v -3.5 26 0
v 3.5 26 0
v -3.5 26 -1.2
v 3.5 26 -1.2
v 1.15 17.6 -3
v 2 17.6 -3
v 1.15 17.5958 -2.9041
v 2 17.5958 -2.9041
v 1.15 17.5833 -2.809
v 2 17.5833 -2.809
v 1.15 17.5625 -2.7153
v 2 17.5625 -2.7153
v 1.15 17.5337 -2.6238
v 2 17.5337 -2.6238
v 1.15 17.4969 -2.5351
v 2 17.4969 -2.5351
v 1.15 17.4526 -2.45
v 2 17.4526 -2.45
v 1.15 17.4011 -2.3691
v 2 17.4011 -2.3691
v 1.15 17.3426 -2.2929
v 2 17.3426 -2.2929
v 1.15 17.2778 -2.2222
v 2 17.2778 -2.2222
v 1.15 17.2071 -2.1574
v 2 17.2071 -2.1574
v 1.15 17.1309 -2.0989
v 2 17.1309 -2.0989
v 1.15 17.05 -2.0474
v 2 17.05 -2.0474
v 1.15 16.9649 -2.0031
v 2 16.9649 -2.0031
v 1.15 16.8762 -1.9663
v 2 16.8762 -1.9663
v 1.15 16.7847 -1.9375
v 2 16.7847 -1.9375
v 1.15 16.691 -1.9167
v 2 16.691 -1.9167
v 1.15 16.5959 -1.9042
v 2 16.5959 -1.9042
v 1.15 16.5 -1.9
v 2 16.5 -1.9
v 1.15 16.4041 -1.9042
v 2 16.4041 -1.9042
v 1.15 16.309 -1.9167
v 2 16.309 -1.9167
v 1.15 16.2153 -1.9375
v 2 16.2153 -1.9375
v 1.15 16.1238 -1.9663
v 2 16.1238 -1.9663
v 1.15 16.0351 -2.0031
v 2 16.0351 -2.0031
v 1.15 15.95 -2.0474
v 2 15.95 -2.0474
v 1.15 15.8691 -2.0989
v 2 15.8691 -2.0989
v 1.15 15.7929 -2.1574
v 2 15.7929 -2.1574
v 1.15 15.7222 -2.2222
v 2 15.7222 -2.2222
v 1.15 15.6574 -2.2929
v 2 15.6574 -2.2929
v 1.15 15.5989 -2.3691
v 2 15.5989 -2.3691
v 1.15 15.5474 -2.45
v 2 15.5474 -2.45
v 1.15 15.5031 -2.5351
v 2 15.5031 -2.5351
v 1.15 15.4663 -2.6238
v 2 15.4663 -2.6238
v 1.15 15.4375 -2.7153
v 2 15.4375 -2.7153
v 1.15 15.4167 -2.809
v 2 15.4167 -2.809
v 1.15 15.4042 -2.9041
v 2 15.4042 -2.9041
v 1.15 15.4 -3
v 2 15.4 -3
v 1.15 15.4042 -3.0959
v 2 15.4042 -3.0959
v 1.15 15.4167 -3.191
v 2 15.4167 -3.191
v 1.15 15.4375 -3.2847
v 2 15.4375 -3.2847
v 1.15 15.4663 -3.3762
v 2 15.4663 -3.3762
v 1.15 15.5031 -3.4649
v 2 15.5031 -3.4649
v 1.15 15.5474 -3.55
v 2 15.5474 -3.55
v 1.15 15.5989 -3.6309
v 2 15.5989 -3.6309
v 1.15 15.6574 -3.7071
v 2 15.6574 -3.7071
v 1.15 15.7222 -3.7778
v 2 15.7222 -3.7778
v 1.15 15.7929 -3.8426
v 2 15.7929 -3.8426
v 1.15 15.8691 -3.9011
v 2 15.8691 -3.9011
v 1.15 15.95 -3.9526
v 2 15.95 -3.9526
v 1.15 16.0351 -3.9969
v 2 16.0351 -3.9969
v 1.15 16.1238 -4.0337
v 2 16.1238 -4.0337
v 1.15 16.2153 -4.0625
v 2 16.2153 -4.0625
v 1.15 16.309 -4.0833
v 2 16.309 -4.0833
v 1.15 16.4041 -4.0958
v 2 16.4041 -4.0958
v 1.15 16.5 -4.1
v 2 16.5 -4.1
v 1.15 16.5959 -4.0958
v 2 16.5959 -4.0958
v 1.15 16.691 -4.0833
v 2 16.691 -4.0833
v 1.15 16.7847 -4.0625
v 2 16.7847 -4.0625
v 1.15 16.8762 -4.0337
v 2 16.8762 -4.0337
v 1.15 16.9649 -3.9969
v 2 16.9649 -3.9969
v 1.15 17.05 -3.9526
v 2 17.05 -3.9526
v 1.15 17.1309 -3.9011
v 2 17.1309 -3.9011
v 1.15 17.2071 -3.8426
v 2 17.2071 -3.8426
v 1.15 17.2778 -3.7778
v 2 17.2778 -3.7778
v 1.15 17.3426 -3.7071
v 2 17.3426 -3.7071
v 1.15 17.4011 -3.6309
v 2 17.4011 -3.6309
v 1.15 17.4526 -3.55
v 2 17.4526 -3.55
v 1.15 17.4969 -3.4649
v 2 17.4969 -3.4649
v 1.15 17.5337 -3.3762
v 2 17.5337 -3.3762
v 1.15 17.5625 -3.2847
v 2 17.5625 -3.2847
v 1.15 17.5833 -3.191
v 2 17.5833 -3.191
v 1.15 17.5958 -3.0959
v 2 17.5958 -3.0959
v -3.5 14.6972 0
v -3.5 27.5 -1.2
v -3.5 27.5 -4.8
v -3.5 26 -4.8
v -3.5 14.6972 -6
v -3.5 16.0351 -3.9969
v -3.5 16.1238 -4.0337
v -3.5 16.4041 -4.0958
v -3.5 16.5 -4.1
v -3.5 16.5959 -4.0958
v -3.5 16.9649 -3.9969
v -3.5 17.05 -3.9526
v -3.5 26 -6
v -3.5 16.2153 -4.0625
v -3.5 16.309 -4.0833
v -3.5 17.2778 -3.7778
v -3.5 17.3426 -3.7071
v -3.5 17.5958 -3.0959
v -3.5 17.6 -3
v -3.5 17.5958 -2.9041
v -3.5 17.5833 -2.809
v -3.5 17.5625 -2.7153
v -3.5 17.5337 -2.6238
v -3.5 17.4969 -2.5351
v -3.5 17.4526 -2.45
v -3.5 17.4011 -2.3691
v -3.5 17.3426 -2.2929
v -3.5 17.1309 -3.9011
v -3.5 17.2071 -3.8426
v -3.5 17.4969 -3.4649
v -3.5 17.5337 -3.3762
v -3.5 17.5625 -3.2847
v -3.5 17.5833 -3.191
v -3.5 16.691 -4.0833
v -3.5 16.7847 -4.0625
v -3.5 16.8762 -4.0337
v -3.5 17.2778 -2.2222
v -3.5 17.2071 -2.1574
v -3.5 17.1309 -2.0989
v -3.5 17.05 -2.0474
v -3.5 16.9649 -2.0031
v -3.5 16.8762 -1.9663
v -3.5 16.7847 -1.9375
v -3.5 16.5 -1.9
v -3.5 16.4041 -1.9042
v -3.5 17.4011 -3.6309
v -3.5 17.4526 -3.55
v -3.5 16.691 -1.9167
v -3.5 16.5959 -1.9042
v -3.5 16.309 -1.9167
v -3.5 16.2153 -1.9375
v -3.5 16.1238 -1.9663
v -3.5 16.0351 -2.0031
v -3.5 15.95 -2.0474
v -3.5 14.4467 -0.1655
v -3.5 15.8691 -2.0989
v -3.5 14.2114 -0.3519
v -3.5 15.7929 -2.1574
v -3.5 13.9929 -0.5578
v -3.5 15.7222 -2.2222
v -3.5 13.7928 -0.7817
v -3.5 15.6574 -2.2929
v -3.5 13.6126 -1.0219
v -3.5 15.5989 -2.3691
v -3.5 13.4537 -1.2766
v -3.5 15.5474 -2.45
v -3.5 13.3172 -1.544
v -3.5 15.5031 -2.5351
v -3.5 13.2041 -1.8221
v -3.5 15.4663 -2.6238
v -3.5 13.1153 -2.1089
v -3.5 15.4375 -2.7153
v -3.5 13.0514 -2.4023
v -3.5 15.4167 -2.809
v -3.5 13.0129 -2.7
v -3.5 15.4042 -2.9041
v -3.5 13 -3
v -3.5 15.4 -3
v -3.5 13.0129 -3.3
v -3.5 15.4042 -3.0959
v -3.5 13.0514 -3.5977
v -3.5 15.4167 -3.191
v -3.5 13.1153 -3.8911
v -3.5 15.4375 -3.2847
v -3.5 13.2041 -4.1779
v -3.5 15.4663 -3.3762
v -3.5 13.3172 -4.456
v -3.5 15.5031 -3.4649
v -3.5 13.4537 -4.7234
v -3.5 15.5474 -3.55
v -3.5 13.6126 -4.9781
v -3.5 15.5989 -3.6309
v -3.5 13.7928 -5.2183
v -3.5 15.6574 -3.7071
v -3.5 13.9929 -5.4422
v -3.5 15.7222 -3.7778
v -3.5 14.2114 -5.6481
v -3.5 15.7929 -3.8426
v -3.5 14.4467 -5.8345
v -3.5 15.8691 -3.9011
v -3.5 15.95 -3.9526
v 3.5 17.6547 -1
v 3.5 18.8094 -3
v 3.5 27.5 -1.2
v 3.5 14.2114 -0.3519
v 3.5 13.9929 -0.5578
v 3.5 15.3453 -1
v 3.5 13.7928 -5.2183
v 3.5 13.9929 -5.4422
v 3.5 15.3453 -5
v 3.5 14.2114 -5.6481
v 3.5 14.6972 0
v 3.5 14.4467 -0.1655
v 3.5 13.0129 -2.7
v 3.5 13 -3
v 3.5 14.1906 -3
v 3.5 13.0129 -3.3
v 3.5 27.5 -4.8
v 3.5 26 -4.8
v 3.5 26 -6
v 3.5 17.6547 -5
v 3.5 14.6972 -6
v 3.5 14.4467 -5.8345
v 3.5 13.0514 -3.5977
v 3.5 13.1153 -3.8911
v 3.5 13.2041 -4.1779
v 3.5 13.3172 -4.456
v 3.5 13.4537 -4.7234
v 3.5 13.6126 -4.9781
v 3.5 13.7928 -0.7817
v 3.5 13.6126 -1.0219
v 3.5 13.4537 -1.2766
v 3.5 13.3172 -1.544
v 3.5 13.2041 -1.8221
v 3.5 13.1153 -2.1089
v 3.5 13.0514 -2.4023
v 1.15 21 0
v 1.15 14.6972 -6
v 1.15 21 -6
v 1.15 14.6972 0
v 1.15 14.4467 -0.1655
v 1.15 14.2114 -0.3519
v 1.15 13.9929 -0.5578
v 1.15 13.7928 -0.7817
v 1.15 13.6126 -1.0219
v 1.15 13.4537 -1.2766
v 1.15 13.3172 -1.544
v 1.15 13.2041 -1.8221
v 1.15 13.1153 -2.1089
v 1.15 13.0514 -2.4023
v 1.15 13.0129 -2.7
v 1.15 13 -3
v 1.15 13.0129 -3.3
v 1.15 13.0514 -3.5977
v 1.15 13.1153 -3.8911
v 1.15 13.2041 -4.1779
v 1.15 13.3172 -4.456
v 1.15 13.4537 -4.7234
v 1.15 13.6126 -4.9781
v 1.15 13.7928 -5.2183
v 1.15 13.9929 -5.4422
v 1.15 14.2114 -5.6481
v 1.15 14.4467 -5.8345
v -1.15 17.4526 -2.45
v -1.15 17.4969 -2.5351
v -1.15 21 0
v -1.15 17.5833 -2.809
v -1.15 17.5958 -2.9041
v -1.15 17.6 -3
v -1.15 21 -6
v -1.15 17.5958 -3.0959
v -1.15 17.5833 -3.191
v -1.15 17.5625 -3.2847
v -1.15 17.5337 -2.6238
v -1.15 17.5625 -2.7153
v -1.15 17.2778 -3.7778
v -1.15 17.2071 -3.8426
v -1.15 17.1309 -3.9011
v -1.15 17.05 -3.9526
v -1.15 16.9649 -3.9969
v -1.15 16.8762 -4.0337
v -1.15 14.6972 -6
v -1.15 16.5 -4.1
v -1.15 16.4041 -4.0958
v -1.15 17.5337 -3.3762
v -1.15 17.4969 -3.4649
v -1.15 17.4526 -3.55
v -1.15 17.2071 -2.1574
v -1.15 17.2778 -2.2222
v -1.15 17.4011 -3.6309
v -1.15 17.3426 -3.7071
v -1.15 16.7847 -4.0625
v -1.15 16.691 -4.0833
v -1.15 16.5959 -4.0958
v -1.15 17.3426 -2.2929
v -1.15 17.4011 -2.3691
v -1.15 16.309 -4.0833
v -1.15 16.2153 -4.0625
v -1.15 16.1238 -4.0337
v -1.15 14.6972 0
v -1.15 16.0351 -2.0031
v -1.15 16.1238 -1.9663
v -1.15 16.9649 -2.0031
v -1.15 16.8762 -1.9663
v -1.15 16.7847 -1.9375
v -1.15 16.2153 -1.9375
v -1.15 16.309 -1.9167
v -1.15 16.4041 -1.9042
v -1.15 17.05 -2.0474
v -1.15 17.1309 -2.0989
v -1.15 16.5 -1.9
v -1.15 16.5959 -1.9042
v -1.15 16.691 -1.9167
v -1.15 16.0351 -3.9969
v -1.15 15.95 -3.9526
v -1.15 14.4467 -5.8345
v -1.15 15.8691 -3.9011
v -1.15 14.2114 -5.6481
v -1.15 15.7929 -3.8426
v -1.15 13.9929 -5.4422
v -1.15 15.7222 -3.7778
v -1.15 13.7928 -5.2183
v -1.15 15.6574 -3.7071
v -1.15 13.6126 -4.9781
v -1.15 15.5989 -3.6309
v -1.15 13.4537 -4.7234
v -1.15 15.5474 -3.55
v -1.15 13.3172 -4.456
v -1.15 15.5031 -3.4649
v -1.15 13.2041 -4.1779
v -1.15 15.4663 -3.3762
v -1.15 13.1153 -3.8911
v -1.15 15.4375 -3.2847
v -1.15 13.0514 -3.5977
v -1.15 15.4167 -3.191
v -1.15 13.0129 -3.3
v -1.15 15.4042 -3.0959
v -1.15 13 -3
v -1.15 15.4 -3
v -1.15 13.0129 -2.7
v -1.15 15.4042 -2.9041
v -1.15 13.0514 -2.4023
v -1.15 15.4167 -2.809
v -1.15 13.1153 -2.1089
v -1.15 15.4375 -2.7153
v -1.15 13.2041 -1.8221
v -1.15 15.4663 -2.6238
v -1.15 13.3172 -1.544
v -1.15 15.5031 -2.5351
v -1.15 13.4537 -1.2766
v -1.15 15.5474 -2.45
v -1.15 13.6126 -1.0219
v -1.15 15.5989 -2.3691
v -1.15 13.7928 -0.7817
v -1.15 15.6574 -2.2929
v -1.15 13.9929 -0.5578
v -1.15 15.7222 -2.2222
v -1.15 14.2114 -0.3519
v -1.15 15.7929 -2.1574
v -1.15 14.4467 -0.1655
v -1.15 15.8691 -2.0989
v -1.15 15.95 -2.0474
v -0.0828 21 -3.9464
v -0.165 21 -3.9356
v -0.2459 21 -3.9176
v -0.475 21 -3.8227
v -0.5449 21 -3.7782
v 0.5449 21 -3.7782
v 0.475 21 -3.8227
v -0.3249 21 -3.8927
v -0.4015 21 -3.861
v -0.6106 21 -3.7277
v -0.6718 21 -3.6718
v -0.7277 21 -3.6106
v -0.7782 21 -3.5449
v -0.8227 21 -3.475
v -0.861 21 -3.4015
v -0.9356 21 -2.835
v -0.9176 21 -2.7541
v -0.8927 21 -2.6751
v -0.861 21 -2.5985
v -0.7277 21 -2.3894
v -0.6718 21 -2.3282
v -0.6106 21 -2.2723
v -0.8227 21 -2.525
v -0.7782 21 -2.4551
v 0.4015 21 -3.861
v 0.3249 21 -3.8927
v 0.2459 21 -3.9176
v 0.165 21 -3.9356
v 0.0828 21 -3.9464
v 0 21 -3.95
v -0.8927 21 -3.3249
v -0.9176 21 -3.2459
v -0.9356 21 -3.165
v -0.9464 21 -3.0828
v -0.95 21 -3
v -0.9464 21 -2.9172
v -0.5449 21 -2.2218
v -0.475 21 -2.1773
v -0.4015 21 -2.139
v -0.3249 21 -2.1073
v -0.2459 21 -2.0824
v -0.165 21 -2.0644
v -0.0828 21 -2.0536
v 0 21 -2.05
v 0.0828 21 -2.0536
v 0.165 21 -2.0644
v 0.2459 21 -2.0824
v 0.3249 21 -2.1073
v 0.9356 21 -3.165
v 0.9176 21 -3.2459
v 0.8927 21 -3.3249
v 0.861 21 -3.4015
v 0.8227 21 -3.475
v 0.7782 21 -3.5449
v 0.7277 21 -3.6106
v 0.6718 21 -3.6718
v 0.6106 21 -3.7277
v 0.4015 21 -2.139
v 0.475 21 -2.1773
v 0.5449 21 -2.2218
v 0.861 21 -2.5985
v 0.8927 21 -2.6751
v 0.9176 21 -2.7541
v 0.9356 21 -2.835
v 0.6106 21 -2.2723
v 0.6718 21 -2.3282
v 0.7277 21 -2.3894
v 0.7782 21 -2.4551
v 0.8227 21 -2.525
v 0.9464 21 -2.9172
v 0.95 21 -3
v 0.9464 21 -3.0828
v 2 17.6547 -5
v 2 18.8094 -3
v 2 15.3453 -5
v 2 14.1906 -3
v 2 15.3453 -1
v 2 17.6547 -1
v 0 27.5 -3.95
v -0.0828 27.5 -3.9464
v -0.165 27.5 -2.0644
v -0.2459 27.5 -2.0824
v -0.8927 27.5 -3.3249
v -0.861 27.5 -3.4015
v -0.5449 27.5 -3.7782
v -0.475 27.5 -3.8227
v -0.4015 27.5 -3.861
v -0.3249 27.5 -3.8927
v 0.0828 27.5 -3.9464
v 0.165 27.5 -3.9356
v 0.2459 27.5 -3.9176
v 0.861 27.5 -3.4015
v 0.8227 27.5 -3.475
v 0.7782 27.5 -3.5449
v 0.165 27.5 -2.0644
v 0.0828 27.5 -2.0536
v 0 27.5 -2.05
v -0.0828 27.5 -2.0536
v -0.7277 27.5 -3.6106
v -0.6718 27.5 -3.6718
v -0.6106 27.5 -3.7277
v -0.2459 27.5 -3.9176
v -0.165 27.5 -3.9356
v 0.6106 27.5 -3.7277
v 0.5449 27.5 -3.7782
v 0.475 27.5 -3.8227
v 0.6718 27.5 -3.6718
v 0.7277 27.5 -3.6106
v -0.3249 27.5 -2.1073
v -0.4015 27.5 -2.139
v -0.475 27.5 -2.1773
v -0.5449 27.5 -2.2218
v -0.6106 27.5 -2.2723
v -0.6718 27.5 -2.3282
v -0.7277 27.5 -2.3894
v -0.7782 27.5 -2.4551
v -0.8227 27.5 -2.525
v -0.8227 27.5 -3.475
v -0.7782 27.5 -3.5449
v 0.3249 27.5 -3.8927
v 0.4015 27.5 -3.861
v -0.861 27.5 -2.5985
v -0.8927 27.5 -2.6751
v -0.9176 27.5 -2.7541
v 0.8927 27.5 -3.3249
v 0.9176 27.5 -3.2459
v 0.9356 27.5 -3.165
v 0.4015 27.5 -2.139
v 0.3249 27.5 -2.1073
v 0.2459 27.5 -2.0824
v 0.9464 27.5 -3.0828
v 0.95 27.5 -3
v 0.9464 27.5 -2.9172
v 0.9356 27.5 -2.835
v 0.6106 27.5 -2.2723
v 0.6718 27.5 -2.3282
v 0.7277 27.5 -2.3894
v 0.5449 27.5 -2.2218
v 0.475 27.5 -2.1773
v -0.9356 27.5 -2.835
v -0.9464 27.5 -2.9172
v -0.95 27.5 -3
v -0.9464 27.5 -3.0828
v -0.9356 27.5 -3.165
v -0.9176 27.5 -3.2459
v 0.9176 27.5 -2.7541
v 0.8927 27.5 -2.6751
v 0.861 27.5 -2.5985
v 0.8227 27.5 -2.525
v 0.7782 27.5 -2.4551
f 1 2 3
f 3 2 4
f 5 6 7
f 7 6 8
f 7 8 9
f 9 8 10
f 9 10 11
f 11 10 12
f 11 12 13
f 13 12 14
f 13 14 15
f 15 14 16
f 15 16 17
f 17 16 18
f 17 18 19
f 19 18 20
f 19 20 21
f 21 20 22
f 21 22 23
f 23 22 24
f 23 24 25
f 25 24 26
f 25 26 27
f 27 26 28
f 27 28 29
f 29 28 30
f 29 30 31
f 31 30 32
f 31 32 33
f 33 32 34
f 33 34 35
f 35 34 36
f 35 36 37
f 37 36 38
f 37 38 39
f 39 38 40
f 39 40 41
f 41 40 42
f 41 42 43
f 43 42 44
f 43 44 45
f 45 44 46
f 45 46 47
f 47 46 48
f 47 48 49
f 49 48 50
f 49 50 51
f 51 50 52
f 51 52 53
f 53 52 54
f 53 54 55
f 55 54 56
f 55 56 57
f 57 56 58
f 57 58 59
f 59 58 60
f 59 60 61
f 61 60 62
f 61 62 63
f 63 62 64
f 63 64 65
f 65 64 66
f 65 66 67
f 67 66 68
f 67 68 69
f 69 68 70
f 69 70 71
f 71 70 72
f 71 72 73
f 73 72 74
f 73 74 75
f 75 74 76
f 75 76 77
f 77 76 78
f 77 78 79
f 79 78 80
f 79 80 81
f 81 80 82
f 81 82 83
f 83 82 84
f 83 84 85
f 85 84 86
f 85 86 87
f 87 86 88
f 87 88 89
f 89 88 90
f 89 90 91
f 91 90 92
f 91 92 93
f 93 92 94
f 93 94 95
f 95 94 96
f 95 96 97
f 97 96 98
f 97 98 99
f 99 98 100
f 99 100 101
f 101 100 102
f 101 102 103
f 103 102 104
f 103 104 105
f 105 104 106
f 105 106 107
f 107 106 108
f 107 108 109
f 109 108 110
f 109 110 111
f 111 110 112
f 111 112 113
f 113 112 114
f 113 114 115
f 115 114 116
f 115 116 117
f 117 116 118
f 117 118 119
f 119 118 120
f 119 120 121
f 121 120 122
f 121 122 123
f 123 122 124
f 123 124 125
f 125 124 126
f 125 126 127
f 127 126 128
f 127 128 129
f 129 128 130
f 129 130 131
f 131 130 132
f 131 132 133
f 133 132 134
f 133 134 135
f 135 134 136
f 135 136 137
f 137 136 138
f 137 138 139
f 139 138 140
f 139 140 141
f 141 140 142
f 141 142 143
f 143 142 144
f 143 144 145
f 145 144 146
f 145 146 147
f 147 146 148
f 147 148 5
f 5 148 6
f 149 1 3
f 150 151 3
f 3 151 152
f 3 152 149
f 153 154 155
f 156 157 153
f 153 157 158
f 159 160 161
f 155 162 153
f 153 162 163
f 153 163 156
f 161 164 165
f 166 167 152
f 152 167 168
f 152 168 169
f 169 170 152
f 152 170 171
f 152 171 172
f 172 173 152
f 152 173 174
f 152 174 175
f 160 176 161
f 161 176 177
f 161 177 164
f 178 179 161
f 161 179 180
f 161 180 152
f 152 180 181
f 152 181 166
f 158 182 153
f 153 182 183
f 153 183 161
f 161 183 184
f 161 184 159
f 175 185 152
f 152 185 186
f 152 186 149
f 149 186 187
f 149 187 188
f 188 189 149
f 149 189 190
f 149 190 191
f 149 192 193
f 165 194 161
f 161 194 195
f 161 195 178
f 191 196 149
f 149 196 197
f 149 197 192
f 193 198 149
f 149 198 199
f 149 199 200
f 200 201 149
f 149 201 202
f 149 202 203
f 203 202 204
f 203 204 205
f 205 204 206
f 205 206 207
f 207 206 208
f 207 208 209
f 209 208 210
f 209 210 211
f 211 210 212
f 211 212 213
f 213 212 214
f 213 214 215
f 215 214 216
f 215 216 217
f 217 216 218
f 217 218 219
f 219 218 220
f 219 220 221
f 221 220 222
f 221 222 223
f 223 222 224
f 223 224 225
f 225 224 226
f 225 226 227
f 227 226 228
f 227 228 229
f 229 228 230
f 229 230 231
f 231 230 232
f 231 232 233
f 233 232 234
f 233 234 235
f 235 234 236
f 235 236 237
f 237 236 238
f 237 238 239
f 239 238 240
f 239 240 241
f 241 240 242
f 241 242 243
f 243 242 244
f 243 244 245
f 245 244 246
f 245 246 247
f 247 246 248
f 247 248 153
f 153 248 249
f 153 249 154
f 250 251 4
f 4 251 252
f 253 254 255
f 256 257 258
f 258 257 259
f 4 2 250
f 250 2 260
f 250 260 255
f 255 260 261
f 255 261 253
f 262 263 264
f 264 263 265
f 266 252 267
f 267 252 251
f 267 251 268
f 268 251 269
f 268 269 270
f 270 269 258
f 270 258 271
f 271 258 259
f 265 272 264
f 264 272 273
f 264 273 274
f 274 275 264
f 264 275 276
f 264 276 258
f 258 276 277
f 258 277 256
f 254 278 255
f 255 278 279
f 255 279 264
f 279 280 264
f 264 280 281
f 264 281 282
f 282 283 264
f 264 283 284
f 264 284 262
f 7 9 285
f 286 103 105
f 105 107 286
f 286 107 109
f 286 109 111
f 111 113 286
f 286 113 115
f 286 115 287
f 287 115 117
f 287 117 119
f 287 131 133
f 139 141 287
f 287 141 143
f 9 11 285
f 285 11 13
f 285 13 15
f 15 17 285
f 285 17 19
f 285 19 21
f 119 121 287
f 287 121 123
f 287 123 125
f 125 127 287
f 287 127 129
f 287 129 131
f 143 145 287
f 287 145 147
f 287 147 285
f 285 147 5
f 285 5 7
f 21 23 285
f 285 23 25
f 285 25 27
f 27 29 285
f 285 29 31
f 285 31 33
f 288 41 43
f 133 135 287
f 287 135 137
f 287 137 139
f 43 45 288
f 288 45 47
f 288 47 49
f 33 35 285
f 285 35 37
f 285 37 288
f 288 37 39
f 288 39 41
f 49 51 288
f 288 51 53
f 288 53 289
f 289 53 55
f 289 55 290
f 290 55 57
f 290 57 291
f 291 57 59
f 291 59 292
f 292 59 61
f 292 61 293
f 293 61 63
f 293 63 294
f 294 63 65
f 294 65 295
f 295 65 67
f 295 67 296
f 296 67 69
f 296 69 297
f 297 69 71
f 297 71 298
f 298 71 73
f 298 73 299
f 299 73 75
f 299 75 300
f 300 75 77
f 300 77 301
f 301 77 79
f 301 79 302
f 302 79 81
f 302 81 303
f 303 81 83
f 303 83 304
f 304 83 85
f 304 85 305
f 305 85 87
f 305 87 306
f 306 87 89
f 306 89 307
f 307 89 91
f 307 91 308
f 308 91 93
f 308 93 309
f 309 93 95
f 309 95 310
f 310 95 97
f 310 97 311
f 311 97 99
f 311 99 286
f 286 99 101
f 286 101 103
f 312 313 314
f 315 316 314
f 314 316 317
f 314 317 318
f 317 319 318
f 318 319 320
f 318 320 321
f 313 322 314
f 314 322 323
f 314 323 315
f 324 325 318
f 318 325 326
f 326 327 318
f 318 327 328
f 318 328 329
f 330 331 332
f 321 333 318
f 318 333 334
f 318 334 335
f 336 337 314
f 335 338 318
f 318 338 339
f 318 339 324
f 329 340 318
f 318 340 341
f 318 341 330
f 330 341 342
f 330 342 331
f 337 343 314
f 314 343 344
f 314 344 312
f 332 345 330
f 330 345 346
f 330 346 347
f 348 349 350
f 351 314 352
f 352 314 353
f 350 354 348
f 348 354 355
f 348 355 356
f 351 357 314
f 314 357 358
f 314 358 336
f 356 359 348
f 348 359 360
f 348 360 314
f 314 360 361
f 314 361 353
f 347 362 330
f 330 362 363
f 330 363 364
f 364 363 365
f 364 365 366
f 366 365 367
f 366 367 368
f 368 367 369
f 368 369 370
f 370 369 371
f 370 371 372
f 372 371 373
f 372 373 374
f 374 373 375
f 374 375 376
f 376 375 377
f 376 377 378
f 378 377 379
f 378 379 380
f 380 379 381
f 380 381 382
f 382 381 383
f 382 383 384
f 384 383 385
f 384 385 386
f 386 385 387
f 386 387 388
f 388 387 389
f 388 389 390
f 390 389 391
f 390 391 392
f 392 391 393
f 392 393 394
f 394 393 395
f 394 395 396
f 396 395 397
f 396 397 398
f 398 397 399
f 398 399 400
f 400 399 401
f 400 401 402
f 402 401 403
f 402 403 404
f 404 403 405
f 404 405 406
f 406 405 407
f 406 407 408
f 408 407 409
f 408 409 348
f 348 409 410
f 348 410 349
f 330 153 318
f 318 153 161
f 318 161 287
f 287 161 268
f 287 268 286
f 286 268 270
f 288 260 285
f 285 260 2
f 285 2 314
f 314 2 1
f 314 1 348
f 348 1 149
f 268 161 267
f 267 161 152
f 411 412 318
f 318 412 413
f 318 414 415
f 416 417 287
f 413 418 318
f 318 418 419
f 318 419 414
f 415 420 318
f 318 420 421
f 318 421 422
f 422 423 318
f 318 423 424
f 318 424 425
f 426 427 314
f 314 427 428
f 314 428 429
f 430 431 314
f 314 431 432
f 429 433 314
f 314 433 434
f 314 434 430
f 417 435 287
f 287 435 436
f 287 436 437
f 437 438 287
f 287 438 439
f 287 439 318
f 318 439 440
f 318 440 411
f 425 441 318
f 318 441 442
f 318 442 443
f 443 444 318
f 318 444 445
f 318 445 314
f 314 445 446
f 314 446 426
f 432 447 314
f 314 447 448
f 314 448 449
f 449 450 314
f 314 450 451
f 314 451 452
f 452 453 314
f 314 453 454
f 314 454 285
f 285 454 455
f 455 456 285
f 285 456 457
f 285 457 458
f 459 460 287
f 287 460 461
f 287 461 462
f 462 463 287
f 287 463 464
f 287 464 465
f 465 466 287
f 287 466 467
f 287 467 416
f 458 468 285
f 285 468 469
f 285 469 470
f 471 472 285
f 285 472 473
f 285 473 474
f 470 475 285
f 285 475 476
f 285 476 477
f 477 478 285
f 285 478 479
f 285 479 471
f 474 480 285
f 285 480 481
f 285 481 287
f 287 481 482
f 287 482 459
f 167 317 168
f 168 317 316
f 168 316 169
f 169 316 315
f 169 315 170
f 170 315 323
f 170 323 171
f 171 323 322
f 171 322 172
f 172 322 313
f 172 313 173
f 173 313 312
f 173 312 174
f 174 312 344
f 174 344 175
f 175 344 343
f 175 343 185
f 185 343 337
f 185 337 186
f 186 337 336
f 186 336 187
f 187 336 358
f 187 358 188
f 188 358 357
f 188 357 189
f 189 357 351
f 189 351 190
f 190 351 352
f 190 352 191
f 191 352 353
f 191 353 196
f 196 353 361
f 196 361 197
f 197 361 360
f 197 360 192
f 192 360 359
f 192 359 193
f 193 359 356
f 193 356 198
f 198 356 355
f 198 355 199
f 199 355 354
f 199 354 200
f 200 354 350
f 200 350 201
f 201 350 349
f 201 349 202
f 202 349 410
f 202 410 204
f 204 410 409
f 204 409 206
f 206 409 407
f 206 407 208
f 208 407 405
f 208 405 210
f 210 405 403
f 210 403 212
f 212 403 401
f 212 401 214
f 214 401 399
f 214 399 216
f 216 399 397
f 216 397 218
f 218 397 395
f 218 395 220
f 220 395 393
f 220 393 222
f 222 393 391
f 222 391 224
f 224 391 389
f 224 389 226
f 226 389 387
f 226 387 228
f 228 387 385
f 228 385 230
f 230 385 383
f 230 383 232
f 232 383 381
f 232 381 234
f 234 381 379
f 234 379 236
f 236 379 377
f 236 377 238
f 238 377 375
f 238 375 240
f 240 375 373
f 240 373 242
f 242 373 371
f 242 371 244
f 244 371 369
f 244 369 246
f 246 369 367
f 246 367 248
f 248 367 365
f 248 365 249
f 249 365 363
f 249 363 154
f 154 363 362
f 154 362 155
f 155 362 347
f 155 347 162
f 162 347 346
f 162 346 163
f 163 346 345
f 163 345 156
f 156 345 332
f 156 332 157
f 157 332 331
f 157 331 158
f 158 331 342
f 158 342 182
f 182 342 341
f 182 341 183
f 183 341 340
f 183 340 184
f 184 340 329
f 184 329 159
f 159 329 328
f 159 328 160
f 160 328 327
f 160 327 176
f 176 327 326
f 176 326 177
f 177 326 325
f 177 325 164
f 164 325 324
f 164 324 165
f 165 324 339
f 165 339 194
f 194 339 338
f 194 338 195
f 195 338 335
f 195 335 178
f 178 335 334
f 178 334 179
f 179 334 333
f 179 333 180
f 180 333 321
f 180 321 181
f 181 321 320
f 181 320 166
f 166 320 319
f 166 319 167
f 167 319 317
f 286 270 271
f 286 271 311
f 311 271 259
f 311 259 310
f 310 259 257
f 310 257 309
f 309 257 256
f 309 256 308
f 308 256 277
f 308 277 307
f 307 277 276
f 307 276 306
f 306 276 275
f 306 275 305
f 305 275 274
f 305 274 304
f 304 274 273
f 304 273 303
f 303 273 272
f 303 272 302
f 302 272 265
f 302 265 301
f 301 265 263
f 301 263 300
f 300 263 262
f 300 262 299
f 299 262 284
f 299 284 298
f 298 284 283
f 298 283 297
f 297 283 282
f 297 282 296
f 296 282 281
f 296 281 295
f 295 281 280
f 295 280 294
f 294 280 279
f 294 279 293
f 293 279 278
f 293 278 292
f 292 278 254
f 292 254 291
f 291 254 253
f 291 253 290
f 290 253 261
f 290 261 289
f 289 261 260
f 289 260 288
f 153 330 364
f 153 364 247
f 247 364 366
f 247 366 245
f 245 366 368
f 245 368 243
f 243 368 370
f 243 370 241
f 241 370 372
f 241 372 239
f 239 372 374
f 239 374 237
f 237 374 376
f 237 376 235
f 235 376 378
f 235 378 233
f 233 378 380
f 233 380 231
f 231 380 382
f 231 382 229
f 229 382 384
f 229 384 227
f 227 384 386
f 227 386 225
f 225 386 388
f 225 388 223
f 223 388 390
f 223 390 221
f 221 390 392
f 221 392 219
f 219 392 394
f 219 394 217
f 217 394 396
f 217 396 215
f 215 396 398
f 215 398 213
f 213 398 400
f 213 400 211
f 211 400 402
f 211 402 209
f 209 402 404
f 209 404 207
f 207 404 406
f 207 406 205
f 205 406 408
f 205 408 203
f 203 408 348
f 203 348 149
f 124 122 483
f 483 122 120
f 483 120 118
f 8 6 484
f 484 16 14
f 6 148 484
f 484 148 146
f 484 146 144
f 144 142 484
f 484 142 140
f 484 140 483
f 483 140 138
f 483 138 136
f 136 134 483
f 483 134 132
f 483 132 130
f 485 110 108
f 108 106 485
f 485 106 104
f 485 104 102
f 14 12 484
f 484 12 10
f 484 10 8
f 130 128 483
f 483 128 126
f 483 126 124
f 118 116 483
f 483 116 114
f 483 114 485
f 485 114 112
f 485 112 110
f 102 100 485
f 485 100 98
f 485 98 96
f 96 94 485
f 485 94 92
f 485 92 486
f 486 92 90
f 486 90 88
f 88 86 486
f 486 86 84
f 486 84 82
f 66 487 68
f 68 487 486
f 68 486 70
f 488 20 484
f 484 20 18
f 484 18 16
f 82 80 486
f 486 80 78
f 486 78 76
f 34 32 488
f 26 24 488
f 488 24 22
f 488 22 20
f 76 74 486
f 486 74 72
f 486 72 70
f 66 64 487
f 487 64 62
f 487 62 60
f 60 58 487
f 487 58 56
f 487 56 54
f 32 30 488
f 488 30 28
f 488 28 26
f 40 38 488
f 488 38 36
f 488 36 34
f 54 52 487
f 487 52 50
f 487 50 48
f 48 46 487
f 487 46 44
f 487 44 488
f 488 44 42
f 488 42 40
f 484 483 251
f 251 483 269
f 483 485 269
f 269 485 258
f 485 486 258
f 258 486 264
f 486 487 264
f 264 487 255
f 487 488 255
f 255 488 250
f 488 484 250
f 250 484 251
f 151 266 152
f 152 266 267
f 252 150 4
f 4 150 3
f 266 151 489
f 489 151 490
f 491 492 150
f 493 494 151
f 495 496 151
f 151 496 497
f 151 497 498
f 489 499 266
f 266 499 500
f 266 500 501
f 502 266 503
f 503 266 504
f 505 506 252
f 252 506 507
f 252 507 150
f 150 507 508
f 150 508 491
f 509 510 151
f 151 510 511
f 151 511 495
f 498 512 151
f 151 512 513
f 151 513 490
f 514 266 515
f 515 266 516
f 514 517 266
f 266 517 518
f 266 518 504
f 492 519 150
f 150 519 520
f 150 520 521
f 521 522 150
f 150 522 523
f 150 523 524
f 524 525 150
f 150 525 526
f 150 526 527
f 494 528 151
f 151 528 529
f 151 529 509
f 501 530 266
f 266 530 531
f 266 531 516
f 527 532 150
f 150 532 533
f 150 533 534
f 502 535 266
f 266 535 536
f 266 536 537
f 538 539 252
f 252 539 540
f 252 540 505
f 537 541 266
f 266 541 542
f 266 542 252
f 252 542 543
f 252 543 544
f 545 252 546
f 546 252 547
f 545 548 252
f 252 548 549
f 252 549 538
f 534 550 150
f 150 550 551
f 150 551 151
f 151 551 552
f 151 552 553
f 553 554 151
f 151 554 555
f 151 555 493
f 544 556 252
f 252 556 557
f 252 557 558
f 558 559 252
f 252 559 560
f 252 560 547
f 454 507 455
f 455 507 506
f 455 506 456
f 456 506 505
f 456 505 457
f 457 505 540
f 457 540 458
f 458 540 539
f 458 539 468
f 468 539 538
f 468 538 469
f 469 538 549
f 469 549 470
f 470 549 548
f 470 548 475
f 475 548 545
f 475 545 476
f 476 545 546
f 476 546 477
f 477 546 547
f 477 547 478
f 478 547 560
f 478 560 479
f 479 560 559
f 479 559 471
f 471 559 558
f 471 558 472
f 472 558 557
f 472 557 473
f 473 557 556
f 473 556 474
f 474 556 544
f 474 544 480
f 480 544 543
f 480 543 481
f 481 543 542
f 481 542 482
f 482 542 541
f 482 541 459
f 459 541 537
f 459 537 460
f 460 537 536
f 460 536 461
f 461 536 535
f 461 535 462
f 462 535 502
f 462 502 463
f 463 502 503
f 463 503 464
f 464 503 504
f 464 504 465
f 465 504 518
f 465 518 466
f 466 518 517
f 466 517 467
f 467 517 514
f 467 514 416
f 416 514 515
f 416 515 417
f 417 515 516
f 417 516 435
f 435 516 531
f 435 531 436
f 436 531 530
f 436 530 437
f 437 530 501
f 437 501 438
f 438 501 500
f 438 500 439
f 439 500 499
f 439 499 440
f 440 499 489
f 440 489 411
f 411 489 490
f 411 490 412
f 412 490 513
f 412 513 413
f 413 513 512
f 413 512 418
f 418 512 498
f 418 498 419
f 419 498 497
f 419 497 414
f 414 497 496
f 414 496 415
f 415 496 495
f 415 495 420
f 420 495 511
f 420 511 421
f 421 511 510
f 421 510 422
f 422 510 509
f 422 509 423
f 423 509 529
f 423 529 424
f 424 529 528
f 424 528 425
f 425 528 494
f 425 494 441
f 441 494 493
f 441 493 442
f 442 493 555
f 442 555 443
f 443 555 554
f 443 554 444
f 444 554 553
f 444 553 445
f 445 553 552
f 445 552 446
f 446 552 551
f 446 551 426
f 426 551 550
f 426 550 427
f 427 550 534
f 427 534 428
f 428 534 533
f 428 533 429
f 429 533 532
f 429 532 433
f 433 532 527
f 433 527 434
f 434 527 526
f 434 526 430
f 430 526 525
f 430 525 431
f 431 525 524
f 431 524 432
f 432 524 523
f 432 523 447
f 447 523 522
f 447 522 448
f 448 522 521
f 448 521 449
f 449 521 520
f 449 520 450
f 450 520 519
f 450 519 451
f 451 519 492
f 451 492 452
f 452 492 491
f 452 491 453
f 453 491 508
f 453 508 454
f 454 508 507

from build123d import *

# Parameters (mm, degrees)
BOSS_EXTRUDE1_DEPTH = 6
SKETCH2_R           = 1.1
CUT_EXTRUDE1_DEPTH  = 28.586228448
CUT_EXTRUDE2_DEPTH  = 1.5
SKETCH4_W           = 7
SKETCH4_H           = 3.6
BOSS_EXTRUDE2_DEPTH = 1.5
SKETCH5_R           = 0.95
CUT_EXTRUDE3_DEPTH  = 6.5


with BuildPart() as part:
    # Sketch1 → Boss-Extrude1 (new body)
    with BuildSketch(Plane.XY):
        Polygon((-1.15, 13), (-1.15, 21), (1.15, 21), (1.15, 13), (3.5, 13), (3.5, 26), (-3.5, 26), (-3.5, 13), align=None)
    extrude(amount=-BOSS_EXTRUDE1_DEPTH)

    # Sketch2 → Cut-Extrude1 (cut, through all)
    with BuildSketch(Plane(origin=(3.5, 0, 0), x_dir=(0, 0, -1), z_dir=(1, 0, 0))):
        with Locations(Location((3, 16.5, 0), (0, 0, 90))):
            Circle(SKETCH2_R)
        with BuildLine():
            ThreePointArc((3.000000016, 13), (1.276589831, 13.453714165), (0, 14.697224362))
            Line((0, 14.697224362), (0, 13))
            Line((0, 13), (3.000000016, 13))
        make_face()
        with BuildLine():
            ThreePointArc((6, 14.697224362), (4.723410183, 13.453714173), (3.000000016, 13))
            Line((3.000000016, 13), (6, 13))
            Line((6, 13), (6, 14.697224362))
        make_face()
    extrude(amount=-CUT_EXTRUDE1_DEPTH, mode=Mode.SUBTRACT)

    # Sketch3 → Cut-Extrude2 (cut)
    with BuildSketch(Plane(origin=(3.5, 0, 0), x_dir=(0, 0, -1), z_dir=(1, 0, 0))):
        Polygon((3, 18.809401077), (1, 17.654700538), (1, 15.345299462), (3, 14.190598923), (5, 15.345299462), (5, 17.654700538), align=None)
    extrude(amount=-CUT_EXTRUDE2_DEPTH, mode=Mode.SUBTRACT)

    # Sketch4 → Boss-Extrude2 (add)
    with BuildSketch(Plane(origin=(0, 26, 0), x_dir=(1, 0, 0), z_dir=(0, 1, 0))):
        with Locations((0, 3)):
            Rectangle(SKETCH4_W, SKETCH4_H)
    extrude(amount=BOSS_EXTRUDE2_DEPTH)

    # Sketch5 → Cut-Extrude3 (cut)
    with BuildSketch(Plane(origin=(0, 27.5, 0), x_dir=(1, 0, 0), z_dir=(0, 1, 0))):
        with Locations(Location((0, 3, 0), (0, 0, 270))):
            Circle(SKETCH5_R)
    extrude(amount=-CUT_EXTRUDE3_DEPTH, mode=Mode.SUBTRACT)


solid = part.part
